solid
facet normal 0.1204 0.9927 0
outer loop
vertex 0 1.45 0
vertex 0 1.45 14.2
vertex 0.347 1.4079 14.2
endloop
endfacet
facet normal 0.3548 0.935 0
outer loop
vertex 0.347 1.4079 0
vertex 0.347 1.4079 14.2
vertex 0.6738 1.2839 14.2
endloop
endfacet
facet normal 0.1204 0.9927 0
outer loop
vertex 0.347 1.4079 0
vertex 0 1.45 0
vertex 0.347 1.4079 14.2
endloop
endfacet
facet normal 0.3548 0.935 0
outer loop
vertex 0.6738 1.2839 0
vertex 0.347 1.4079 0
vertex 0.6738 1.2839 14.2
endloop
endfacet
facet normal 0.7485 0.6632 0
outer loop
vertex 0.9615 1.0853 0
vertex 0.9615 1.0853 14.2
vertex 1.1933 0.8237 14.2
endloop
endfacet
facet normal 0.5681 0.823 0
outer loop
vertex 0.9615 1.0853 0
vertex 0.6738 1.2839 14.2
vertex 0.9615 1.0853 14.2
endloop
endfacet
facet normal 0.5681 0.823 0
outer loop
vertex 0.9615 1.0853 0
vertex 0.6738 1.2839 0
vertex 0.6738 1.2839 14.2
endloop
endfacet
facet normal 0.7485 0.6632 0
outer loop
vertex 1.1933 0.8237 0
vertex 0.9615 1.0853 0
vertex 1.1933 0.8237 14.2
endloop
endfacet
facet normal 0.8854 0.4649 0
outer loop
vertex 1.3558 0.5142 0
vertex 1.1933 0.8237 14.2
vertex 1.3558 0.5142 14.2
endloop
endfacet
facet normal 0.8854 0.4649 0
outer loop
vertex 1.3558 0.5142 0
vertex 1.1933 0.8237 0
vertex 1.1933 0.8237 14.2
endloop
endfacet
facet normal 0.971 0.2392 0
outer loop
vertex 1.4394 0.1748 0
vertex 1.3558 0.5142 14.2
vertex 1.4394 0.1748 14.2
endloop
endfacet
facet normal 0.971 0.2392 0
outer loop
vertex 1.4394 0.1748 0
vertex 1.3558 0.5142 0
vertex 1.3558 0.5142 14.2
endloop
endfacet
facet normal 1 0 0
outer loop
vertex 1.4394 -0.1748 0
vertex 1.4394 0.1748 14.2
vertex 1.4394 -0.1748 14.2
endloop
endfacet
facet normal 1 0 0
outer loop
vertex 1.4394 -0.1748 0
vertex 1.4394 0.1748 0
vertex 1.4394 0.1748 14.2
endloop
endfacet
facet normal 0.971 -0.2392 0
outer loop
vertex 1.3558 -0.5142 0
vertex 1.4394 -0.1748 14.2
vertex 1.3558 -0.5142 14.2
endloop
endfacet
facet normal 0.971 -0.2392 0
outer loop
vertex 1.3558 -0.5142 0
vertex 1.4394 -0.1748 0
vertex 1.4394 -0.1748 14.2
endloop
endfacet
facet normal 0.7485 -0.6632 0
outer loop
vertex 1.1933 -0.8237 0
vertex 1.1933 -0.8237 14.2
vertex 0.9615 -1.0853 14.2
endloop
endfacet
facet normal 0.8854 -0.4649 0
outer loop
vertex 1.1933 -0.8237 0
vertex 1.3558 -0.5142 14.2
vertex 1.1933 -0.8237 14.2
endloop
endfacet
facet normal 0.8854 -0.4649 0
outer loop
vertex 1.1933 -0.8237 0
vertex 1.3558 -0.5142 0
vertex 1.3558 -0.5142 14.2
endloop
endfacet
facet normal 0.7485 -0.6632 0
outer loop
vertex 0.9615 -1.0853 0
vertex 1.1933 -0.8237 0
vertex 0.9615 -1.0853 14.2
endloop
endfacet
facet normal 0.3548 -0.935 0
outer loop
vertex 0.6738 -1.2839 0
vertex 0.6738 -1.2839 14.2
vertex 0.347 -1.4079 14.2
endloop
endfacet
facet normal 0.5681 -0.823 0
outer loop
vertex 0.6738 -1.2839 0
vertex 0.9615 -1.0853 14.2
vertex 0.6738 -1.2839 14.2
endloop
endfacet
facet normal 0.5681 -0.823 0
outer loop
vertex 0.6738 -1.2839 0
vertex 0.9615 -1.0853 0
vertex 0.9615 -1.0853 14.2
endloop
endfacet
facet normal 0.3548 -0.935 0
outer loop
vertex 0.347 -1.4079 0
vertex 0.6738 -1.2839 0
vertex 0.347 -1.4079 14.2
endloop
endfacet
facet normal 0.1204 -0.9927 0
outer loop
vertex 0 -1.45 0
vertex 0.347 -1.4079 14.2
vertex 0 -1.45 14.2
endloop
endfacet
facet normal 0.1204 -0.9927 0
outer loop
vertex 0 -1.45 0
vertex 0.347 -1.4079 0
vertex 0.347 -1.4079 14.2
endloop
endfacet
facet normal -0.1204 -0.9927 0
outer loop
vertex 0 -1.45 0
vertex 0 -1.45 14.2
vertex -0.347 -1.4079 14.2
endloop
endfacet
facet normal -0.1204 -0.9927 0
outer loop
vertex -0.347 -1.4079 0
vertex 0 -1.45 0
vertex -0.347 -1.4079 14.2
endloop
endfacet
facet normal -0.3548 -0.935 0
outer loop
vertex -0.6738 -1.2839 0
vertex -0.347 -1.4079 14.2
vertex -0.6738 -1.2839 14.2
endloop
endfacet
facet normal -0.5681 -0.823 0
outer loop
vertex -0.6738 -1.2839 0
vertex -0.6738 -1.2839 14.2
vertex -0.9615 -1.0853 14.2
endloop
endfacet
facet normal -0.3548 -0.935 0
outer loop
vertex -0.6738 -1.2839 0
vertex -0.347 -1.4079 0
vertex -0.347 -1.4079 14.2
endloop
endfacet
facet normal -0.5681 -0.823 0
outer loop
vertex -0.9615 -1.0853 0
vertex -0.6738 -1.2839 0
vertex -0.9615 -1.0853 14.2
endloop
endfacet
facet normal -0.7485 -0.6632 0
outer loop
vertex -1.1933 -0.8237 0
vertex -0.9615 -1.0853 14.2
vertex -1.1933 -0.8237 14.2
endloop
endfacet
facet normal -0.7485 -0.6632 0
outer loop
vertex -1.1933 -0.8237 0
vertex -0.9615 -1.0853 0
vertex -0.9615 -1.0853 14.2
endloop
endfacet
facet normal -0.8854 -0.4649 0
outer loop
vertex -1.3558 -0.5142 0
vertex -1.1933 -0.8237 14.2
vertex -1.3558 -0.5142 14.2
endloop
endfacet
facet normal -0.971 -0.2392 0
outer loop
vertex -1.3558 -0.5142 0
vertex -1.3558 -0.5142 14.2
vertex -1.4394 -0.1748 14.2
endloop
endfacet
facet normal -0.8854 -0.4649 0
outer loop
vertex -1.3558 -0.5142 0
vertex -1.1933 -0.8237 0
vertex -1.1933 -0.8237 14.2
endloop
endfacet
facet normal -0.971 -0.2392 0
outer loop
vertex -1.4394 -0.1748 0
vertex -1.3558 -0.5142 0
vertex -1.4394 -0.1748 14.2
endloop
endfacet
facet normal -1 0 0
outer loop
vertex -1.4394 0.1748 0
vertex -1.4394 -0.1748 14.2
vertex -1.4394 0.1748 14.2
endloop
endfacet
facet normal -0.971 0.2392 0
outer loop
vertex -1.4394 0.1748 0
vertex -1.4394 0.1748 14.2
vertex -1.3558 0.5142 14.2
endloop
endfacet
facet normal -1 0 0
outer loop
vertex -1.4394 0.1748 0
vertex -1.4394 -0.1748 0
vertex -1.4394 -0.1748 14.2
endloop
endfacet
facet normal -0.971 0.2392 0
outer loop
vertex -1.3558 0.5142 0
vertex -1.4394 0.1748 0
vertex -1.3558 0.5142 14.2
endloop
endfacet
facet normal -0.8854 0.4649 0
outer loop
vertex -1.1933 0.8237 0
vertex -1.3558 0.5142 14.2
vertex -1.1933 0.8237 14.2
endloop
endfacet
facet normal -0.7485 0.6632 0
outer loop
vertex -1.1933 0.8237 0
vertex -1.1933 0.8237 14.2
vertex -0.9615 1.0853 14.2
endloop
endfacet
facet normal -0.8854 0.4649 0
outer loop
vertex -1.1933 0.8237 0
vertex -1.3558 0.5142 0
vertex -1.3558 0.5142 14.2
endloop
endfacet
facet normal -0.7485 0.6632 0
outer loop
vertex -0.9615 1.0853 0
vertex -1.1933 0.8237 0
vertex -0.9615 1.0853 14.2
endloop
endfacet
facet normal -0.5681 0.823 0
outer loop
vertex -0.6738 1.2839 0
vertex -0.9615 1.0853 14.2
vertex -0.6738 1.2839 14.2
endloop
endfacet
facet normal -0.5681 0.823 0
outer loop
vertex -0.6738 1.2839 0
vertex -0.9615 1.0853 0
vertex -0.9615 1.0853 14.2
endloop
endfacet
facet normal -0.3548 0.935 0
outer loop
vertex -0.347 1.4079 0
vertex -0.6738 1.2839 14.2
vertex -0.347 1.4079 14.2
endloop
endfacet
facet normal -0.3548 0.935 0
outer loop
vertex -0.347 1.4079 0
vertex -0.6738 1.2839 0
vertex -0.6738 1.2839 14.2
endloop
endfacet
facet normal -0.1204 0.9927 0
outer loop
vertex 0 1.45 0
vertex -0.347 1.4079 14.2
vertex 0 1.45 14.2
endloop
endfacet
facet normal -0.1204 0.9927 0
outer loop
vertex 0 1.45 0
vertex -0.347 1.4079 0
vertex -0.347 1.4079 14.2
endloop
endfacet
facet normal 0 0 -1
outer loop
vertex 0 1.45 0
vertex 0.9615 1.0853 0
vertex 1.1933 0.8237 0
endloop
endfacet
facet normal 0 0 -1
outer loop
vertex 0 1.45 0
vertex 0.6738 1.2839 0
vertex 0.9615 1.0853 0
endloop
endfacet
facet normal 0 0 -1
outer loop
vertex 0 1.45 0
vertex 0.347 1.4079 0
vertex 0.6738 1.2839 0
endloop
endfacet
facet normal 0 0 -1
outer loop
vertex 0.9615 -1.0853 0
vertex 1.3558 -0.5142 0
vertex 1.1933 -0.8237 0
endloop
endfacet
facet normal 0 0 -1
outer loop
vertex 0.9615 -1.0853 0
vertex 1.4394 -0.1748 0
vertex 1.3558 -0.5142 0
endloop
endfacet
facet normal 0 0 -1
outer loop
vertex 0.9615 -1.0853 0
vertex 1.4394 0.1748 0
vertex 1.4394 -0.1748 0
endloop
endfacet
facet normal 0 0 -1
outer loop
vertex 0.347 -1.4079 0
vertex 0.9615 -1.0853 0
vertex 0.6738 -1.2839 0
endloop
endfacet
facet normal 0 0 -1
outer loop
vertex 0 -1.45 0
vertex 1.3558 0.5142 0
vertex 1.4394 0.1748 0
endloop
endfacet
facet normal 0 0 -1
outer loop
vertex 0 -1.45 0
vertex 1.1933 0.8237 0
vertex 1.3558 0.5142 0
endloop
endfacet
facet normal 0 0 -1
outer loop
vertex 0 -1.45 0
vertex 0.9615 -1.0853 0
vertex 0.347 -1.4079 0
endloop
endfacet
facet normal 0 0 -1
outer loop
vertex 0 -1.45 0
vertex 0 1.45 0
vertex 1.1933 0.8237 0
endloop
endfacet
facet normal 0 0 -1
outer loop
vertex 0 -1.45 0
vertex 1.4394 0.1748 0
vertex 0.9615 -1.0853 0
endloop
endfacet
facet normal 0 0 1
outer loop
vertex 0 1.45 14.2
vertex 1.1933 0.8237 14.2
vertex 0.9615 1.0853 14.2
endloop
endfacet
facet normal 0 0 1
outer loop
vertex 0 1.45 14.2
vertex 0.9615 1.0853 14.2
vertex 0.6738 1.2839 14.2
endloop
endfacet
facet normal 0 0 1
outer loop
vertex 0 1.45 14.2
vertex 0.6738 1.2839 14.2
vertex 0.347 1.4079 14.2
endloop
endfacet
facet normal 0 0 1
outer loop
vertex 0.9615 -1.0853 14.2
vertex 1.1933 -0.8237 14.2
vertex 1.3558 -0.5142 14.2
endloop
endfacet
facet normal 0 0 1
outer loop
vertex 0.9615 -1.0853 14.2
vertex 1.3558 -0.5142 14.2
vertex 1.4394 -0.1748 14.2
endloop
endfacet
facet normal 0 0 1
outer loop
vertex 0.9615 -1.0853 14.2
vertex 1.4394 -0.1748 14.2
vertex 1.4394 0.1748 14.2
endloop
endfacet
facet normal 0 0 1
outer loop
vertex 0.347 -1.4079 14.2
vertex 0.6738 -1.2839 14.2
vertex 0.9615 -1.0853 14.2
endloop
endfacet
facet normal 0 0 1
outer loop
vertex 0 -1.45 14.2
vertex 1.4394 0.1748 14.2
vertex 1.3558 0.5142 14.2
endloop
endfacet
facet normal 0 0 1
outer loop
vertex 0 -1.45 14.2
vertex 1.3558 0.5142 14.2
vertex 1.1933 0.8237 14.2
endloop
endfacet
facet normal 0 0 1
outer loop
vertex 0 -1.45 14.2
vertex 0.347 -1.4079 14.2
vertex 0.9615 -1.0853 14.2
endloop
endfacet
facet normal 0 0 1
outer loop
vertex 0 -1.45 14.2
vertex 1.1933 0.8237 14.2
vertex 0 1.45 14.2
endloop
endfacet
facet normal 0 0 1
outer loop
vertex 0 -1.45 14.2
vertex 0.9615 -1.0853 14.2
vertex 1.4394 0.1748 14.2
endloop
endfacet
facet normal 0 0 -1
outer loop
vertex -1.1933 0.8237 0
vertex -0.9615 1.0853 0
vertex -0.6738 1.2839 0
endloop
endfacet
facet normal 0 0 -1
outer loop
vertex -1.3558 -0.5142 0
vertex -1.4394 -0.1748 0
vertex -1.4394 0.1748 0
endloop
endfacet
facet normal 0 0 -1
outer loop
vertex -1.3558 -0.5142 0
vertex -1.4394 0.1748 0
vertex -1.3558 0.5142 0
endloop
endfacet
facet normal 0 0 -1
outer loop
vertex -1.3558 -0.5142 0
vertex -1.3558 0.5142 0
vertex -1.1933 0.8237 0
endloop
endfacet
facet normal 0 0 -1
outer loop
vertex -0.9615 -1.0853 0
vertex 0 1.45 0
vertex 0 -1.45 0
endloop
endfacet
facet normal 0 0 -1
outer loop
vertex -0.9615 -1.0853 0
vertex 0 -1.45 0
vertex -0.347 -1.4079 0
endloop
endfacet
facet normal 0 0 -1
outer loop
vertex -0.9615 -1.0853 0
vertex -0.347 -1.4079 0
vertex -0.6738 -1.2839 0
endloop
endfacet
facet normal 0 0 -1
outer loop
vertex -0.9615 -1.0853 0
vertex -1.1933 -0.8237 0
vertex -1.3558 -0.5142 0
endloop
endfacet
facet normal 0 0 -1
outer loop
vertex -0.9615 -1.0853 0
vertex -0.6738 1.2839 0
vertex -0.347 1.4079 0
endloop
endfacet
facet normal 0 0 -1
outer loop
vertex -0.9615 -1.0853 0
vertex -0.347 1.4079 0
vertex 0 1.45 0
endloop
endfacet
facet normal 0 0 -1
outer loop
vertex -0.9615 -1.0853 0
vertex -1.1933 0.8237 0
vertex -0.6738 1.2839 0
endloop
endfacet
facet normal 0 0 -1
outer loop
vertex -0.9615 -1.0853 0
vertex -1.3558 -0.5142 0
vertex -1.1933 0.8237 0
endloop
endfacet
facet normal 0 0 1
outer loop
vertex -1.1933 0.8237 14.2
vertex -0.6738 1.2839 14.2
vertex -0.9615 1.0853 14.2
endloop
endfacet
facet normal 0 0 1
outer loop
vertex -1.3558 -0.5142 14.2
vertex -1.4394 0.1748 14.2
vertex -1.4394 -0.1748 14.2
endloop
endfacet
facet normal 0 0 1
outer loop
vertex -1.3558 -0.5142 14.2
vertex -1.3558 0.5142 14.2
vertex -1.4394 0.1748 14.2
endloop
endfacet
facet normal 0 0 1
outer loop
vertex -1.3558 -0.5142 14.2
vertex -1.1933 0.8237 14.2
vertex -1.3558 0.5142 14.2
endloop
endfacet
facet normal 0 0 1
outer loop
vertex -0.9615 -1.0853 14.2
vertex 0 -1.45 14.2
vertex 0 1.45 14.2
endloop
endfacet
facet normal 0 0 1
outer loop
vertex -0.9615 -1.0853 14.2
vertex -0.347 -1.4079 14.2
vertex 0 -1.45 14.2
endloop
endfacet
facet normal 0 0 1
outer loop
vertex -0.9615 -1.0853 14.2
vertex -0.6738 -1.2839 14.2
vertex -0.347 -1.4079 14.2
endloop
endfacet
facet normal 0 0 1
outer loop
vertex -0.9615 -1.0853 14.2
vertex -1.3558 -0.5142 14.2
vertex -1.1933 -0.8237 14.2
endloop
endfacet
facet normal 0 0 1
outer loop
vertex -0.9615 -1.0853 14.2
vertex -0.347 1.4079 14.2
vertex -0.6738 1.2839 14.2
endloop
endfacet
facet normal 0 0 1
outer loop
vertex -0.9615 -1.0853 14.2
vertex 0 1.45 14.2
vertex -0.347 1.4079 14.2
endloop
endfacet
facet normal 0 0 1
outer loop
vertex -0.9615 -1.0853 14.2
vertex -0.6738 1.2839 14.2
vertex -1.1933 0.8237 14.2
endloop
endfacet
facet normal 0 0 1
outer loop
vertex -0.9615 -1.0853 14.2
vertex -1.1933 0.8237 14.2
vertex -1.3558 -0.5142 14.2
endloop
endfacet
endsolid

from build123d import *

# Parameters (mm, degrees)
PAD001_DEPTH            = 14.2
BODY001_PLACEMENT_ANGLE = 180


with BuildPart() as part:
    # Sketch001 → Pad001 (new body)
    with BuildSketch(Plane.XY):
        with BuildLine():
            ThreePointArc((0, 1.45), (-1.45, 0), (0, -1.45))
            Line((0, -1.45), (0, 1.45))
        make_face()
    pad001 = extrude(amount=PAD001_DEPTH)

    # Mirrored: Pad001 across Sketch001 V_Axis
    add(pad001.mirror(Plane(origin=(0, 0, 0), x_dir=(0, 0, 1), z_dir=(1, 0, 0))))


with BuildPart() as part_1:
    # Body001 placement: moved
    add(part.part.rotate(Axis((0, 0, 0), (0, 0, 1)), BODY001_PLACEMENT_ANGLE))


solid = part_1.part
